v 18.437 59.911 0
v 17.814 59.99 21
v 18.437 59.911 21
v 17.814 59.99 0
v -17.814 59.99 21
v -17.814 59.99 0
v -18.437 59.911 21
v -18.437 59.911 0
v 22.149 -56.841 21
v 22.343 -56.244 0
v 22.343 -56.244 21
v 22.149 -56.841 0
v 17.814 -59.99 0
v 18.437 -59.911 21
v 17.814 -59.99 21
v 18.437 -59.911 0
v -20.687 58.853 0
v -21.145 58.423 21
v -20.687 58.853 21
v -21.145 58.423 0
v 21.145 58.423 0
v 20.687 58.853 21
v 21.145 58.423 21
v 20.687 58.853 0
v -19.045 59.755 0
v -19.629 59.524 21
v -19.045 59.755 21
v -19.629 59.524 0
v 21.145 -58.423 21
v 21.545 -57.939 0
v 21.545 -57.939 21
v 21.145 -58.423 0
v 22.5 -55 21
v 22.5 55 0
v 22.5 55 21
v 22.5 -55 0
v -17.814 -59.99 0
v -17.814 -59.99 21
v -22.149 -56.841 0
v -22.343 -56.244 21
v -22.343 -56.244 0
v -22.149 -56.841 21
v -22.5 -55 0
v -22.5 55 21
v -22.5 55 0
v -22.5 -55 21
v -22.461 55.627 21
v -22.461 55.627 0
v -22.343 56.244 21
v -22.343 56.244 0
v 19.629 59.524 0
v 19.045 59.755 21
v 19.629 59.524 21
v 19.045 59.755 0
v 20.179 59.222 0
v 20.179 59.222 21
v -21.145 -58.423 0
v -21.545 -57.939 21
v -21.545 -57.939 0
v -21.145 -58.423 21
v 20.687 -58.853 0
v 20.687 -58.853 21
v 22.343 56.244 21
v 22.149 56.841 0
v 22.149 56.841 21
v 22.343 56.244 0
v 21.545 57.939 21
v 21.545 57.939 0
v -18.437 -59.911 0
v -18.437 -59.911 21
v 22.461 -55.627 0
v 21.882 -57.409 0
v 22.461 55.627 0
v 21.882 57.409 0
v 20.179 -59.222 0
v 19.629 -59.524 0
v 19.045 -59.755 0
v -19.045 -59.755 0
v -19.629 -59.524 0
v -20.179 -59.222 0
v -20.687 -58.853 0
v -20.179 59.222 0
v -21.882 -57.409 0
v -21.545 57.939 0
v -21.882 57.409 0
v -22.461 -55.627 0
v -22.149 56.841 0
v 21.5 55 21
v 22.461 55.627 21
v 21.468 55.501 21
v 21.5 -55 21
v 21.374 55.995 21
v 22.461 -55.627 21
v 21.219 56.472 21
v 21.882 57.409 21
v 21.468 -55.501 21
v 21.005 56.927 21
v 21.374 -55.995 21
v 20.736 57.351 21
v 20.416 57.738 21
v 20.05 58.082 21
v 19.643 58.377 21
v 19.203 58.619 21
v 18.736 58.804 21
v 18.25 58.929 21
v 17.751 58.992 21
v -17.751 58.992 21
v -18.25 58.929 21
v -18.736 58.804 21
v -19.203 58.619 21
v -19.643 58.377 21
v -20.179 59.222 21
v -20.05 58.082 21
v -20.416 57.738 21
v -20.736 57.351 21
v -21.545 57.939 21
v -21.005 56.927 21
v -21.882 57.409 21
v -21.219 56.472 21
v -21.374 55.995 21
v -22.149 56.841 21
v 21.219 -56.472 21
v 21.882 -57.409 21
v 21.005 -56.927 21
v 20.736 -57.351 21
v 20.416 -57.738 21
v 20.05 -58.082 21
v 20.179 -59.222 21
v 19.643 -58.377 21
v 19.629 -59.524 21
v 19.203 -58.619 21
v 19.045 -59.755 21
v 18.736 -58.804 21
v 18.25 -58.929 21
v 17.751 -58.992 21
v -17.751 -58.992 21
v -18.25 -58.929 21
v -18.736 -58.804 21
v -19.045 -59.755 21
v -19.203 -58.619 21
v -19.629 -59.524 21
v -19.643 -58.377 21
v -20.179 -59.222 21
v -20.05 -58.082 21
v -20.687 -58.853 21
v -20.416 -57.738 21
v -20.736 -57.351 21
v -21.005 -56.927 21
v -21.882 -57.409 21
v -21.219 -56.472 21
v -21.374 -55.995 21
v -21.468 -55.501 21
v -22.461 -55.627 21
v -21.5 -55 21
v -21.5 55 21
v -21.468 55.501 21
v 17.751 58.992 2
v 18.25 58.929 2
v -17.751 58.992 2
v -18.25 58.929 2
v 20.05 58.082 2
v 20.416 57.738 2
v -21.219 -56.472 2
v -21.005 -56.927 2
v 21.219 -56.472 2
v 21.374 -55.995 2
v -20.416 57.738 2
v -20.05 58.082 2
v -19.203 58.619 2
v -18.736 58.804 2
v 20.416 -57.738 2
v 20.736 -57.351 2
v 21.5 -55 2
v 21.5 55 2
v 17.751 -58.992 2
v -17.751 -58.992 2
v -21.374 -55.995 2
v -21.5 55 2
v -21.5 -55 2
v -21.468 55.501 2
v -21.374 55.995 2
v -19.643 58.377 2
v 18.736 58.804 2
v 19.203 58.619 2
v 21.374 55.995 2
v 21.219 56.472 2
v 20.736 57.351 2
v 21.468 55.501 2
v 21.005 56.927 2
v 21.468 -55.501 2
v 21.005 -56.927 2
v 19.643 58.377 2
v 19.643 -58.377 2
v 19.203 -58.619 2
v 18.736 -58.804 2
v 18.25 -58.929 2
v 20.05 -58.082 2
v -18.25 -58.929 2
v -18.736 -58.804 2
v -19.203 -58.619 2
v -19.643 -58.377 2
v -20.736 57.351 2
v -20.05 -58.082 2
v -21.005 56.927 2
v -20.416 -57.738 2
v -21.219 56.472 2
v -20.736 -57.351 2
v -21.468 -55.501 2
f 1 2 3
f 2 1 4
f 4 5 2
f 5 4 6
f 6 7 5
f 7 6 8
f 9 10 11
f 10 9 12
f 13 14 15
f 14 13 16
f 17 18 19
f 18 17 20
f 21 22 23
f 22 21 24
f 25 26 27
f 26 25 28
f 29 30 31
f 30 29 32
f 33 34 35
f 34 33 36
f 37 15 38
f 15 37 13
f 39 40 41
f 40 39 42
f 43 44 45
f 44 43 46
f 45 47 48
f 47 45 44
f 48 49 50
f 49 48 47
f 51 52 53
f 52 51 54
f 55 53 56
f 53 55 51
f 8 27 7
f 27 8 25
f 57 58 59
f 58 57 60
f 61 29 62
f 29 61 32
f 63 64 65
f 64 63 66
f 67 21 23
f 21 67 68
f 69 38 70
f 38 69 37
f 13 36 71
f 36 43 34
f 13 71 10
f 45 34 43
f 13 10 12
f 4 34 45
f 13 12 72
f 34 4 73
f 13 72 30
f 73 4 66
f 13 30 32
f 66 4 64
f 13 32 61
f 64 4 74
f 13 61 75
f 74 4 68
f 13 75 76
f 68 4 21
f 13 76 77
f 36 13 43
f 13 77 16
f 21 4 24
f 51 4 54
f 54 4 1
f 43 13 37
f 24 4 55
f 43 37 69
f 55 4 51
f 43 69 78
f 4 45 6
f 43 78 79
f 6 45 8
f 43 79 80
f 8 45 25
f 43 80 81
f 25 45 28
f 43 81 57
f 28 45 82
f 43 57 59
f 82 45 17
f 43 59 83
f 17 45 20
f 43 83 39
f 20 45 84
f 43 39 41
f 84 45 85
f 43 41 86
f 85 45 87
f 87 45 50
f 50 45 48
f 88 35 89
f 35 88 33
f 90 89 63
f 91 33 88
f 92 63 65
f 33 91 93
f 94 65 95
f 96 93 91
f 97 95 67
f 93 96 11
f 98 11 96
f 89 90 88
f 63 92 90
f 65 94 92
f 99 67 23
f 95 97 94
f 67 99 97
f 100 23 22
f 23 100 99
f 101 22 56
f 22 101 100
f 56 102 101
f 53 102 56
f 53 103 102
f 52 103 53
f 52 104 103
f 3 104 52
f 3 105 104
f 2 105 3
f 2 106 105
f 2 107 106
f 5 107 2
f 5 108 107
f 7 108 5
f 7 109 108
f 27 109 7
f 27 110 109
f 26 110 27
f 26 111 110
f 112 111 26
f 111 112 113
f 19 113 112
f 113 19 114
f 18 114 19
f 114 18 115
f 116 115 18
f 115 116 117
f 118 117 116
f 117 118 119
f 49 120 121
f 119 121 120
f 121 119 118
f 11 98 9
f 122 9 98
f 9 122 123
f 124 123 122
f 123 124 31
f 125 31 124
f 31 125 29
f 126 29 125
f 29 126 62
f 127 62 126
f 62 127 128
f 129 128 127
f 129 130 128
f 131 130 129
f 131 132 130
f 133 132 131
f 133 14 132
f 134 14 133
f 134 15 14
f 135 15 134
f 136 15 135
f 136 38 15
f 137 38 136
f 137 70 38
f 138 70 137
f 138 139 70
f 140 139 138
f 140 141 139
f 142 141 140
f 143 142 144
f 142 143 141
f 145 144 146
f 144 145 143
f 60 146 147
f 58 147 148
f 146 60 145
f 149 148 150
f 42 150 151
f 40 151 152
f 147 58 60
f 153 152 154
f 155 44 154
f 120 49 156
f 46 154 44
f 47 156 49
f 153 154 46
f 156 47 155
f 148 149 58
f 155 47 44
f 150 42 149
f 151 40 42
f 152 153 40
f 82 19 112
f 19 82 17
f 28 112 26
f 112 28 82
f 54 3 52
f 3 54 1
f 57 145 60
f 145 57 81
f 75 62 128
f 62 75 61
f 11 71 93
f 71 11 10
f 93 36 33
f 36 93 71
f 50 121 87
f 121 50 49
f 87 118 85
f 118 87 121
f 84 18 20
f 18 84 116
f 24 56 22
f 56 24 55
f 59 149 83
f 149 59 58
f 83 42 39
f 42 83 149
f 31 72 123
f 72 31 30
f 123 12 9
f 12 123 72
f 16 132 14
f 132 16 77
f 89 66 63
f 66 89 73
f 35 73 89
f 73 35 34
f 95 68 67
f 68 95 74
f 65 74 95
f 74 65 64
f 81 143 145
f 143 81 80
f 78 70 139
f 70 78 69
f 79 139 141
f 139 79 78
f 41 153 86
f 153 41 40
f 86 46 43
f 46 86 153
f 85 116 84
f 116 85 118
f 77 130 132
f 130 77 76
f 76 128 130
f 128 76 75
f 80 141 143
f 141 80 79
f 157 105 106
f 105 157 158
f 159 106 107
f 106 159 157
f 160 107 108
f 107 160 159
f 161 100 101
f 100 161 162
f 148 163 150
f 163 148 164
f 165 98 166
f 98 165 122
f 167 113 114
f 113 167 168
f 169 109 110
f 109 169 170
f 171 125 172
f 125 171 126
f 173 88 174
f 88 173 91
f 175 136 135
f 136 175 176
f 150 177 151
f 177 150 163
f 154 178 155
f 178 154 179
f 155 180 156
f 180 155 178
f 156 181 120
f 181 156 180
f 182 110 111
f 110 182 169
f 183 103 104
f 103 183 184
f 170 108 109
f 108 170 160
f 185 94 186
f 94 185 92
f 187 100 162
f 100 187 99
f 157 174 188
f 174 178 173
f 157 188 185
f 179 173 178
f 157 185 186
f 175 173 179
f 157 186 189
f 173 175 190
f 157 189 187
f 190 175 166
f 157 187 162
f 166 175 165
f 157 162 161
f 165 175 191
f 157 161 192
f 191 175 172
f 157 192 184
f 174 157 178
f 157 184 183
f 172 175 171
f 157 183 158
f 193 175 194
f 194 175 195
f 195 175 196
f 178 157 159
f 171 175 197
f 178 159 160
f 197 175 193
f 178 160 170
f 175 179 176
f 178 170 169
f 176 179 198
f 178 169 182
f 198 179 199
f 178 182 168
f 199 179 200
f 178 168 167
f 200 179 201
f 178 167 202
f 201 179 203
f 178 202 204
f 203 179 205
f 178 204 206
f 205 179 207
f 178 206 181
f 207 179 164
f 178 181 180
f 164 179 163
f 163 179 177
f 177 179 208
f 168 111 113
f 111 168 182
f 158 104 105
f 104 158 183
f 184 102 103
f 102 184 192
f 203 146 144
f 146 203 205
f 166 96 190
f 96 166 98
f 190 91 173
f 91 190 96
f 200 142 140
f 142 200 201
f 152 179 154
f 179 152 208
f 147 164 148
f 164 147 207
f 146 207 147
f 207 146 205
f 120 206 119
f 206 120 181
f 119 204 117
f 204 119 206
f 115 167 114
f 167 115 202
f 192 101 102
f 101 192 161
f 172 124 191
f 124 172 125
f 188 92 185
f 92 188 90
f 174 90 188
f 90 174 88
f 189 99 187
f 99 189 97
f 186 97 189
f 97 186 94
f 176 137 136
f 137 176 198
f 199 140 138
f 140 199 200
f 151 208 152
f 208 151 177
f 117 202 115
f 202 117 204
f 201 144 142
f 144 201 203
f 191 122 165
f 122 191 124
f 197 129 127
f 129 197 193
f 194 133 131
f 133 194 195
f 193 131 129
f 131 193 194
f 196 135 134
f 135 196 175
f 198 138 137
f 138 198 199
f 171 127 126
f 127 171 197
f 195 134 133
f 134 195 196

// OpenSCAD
$fn = 50;


difference() {
	union() {
		hull() {
			translate(v = [-17.5000000000, 55.0000000000, 0]) {
				cylinder(h = 21, r = 5);
			}
			translate(v = [17.5000000000, 55.0000000000, 0]) {
				cylinder(h = 21, r = 5);
			}
			translate(v = [-17.5000000000, -55.0000000000, 0]) {
				cylinder(h = 21, r = 5);
			}
			translate(v = [17.5000000000, -55.0000000000, 0]) {
				cylinder(h = 21, r = 5);
			}
		}
	}
	union() {
		translate(v = [0, 0, 2]) {
			hull() {
				translate(v = [-17.5000000000, 55.0000000000, 0]) {
					cylinder(h = 19, r = 4);
				}
				translate(v = [17.5000000000, 55.0000000000, 0]) {
					cylinder(h = 19, r = 4);
				}
				translate(v = [-17.5000000000, -55.0000000000, 0]) {
					cylinder(h = 19, r = 4);
				}
				translate(v = [17.5000000000, -55.0000000000, 0]) {
					cylinder(h = 19, r = 4);
				}
			}
		}
	}
}
